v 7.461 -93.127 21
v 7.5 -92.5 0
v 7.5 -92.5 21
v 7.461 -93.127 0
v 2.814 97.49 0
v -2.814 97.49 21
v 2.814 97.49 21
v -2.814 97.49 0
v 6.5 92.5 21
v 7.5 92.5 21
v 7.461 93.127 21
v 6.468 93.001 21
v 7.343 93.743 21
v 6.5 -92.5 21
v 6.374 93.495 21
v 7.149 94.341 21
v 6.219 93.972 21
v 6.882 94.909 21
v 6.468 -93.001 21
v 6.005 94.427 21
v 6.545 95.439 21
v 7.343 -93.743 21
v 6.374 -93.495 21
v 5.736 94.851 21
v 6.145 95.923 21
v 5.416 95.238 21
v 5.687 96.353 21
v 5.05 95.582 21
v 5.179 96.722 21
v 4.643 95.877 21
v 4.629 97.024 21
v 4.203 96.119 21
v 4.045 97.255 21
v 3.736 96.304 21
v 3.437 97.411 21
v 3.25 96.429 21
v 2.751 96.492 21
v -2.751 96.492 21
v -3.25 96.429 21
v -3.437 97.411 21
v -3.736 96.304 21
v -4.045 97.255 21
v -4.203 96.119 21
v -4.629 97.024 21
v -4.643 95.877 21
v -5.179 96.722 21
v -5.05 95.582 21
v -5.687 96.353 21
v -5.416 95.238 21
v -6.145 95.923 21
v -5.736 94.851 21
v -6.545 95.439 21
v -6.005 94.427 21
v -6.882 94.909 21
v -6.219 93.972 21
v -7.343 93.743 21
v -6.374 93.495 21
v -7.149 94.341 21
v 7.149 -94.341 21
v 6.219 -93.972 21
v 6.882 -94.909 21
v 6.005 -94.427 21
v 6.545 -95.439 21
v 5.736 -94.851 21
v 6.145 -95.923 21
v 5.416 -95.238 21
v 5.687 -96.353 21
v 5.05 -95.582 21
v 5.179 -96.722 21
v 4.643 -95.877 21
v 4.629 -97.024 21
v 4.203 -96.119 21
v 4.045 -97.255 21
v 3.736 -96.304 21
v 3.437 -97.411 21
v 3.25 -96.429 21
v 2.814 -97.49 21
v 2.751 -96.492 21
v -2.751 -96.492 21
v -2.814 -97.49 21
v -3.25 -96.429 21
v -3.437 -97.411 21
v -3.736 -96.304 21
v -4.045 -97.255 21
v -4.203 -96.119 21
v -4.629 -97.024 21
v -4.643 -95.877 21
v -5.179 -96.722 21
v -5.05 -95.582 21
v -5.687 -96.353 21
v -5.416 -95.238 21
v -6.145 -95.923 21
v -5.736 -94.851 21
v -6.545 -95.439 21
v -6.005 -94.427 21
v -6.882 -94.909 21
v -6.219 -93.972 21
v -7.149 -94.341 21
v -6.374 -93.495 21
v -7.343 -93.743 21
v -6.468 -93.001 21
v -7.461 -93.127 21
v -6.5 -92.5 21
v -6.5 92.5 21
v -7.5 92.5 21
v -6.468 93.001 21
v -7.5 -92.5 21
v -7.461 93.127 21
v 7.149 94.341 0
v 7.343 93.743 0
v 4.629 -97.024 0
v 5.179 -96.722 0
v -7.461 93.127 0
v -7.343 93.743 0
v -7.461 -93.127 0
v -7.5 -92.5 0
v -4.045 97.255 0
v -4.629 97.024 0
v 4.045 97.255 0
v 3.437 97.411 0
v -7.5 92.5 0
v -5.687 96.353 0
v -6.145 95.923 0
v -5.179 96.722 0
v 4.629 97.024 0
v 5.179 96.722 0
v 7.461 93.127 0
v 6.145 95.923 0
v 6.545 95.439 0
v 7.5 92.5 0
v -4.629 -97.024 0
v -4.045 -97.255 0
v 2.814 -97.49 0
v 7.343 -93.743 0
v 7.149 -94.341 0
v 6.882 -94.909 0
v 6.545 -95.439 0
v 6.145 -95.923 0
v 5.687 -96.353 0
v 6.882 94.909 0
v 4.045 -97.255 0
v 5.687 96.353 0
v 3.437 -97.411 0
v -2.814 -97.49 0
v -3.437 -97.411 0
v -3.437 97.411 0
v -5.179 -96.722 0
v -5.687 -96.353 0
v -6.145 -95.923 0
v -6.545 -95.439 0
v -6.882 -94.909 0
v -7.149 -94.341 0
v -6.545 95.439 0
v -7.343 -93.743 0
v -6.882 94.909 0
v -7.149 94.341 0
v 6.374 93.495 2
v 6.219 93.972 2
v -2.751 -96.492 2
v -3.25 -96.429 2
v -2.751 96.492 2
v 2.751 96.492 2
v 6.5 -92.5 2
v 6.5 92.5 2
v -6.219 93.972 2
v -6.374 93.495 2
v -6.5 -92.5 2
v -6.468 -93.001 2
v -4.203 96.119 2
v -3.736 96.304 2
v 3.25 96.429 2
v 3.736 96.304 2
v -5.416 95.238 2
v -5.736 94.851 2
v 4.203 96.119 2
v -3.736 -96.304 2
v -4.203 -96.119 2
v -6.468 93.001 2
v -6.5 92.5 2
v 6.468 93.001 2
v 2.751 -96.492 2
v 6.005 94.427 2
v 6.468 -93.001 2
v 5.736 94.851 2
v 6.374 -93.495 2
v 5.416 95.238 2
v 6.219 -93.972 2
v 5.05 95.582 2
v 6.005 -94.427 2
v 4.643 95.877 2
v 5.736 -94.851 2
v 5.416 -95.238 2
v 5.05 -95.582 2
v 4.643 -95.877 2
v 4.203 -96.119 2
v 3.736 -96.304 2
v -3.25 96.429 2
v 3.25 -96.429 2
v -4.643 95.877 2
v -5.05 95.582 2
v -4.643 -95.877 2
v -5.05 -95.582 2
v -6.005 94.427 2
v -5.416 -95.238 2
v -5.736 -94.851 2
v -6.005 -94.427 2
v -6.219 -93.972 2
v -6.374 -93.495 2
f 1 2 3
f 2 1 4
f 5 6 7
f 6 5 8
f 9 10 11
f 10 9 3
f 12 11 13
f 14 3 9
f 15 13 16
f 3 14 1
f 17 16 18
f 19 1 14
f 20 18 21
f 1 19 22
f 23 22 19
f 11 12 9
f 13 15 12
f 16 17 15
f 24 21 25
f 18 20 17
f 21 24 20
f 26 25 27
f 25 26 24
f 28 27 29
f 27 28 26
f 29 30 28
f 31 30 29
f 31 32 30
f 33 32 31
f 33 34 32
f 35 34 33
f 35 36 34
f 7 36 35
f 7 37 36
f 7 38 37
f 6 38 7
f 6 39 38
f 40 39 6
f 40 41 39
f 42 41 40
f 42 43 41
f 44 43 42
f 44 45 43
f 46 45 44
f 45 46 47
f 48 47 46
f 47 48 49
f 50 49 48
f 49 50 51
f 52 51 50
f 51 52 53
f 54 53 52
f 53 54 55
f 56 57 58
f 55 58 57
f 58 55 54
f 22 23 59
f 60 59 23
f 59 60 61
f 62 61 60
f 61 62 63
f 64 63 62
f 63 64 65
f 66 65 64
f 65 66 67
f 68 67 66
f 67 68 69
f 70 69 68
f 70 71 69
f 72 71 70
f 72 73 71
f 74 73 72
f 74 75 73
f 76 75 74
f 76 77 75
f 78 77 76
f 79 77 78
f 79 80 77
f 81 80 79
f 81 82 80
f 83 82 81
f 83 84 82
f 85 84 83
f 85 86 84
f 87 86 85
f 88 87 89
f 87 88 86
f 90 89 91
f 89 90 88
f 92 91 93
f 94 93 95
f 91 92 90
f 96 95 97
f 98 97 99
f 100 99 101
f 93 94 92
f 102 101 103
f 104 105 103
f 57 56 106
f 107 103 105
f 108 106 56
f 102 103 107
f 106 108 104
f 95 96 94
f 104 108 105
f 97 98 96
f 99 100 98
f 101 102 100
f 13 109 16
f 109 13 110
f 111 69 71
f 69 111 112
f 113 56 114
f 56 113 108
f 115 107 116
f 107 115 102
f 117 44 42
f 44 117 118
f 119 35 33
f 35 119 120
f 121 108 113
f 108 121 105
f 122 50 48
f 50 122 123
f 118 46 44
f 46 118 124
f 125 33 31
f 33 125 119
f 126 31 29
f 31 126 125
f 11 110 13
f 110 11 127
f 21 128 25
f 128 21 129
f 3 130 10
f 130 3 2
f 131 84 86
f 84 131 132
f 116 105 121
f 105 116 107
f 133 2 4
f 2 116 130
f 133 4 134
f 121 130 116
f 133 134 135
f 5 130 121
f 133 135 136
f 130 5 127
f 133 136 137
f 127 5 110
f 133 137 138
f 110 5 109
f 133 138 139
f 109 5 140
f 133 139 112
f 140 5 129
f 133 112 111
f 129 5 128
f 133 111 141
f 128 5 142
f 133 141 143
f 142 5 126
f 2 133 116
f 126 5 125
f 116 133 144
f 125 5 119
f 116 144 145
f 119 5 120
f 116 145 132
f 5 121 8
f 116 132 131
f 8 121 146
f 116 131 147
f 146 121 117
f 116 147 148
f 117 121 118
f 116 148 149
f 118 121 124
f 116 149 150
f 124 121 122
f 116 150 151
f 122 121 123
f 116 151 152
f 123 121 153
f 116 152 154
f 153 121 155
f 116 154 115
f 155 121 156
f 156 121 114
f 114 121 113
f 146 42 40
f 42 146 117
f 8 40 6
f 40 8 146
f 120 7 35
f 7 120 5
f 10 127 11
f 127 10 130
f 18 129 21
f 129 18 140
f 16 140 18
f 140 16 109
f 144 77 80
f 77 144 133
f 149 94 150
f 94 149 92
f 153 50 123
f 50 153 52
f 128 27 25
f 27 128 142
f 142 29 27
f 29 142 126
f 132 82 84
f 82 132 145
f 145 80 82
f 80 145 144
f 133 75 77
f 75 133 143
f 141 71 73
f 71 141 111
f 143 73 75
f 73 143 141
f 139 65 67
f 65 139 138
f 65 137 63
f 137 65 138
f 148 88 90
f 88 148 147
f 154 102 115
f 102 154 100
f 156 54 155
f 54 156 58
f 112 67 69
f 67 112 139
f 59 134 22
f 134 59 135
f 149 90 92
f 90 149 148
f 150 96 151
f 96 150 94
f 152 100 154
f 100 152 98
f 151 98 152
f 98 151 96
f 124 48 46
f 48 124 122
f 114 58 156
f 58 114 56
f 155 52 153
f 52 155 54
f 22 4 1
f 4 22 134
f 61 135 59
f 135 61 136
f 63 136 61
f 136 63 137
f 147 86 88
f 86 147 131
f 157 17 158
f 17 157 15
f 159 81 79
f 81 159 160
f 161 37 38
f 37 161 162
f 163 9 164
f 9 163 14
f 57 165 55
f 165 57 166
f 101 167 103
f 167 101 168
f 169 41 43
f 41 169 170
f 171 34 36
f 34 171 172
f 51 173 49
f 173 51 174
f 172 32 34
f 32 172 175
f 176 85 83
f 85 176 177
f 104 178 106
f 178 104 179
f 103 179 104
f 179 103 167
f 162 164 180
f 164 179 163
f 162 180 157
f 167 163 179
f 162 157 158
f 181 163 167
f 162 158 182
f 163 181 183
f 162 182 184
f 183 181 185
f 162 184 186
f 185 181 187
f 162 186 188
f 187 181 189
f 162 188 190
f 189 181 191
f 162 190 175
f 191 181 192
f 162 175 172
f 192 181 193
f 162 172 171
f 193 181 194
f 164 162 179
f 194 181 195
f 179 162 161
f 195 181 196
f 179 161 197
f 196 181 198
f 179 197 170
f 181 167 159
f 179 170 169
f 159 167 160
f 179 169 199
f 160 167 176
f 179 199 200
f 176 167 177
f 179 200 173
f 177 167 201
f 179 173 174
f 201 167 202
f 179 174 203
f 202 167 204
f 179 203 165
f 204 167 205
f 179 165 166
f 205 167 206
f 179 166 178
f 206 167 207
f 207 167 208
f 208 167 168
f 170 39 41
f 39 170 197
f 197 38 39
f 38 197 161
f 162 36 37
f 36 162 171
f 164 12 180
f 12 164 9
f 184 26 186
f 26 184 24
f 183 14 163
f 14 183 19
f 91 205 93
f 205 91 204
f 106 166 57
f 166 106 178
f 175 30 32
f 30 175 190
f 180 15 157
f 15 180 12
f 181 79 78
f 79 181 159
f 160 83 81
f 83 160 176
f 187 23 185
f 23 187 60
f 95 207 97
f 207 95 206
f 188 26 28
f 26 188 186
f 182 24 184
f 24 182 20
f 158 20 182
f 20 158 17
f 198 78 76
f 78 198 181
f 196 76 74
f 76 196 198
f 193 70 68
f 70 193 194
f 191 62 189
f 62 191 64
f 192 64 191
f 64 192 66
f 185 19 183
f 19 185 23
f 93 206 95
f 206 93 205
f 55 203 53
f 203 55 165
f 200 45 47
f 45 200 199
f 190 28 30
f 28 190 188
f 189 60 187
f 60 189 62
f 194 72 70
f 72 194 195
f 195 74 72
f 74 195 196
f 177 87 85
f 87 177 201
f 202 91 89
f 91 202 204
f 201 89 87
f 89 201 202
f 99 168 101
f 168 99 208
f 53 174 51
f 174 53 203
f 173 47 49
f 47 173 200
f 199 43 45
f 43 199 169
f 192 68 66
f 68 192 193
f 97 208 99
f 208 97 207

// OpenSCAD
$fn = 50;


difference() {
	union() {
		hull() {
			translate(v = [-2.5000000000, 92.5000000000, 0]) {
				cylinder(h = 21, r = 5);
			}
			translate(v = [2.5000000000, 92.5000000000, 0]) {
				cylinder(h = 21, r = 5);
			}
			translate(v = [-2.5000000000, -92.5000000000, 0]) {
				cylinder(h = 21, r = 5);
			}
			translate(v = [2.5000000000, -92.5000000000, 0]) {
				cylinder(h = 21, r = 5);
			}
		}
	}
	union() {
		translate(v = [0, 0, 2]) {
			hull() {
				translate(v = [-2.5000000000, 92.5000000000, 0]) {
					cylinder(h = 19, r = 4);
				}
				translate(v = [2.5000000000, 92.5000000000, 0]) {
					cylinder(h = 19, r = 4);
				}
				translate(v = [-2.5000000000, -92.5000000000, 0]) {
					cylinder(h = 19, r = 4);
				}
				translate(v = [2.5000000000, -92.5000000000, 0]) {
					cylinder(h = 19, r = 4);
				}
			}
		}
	}
}
